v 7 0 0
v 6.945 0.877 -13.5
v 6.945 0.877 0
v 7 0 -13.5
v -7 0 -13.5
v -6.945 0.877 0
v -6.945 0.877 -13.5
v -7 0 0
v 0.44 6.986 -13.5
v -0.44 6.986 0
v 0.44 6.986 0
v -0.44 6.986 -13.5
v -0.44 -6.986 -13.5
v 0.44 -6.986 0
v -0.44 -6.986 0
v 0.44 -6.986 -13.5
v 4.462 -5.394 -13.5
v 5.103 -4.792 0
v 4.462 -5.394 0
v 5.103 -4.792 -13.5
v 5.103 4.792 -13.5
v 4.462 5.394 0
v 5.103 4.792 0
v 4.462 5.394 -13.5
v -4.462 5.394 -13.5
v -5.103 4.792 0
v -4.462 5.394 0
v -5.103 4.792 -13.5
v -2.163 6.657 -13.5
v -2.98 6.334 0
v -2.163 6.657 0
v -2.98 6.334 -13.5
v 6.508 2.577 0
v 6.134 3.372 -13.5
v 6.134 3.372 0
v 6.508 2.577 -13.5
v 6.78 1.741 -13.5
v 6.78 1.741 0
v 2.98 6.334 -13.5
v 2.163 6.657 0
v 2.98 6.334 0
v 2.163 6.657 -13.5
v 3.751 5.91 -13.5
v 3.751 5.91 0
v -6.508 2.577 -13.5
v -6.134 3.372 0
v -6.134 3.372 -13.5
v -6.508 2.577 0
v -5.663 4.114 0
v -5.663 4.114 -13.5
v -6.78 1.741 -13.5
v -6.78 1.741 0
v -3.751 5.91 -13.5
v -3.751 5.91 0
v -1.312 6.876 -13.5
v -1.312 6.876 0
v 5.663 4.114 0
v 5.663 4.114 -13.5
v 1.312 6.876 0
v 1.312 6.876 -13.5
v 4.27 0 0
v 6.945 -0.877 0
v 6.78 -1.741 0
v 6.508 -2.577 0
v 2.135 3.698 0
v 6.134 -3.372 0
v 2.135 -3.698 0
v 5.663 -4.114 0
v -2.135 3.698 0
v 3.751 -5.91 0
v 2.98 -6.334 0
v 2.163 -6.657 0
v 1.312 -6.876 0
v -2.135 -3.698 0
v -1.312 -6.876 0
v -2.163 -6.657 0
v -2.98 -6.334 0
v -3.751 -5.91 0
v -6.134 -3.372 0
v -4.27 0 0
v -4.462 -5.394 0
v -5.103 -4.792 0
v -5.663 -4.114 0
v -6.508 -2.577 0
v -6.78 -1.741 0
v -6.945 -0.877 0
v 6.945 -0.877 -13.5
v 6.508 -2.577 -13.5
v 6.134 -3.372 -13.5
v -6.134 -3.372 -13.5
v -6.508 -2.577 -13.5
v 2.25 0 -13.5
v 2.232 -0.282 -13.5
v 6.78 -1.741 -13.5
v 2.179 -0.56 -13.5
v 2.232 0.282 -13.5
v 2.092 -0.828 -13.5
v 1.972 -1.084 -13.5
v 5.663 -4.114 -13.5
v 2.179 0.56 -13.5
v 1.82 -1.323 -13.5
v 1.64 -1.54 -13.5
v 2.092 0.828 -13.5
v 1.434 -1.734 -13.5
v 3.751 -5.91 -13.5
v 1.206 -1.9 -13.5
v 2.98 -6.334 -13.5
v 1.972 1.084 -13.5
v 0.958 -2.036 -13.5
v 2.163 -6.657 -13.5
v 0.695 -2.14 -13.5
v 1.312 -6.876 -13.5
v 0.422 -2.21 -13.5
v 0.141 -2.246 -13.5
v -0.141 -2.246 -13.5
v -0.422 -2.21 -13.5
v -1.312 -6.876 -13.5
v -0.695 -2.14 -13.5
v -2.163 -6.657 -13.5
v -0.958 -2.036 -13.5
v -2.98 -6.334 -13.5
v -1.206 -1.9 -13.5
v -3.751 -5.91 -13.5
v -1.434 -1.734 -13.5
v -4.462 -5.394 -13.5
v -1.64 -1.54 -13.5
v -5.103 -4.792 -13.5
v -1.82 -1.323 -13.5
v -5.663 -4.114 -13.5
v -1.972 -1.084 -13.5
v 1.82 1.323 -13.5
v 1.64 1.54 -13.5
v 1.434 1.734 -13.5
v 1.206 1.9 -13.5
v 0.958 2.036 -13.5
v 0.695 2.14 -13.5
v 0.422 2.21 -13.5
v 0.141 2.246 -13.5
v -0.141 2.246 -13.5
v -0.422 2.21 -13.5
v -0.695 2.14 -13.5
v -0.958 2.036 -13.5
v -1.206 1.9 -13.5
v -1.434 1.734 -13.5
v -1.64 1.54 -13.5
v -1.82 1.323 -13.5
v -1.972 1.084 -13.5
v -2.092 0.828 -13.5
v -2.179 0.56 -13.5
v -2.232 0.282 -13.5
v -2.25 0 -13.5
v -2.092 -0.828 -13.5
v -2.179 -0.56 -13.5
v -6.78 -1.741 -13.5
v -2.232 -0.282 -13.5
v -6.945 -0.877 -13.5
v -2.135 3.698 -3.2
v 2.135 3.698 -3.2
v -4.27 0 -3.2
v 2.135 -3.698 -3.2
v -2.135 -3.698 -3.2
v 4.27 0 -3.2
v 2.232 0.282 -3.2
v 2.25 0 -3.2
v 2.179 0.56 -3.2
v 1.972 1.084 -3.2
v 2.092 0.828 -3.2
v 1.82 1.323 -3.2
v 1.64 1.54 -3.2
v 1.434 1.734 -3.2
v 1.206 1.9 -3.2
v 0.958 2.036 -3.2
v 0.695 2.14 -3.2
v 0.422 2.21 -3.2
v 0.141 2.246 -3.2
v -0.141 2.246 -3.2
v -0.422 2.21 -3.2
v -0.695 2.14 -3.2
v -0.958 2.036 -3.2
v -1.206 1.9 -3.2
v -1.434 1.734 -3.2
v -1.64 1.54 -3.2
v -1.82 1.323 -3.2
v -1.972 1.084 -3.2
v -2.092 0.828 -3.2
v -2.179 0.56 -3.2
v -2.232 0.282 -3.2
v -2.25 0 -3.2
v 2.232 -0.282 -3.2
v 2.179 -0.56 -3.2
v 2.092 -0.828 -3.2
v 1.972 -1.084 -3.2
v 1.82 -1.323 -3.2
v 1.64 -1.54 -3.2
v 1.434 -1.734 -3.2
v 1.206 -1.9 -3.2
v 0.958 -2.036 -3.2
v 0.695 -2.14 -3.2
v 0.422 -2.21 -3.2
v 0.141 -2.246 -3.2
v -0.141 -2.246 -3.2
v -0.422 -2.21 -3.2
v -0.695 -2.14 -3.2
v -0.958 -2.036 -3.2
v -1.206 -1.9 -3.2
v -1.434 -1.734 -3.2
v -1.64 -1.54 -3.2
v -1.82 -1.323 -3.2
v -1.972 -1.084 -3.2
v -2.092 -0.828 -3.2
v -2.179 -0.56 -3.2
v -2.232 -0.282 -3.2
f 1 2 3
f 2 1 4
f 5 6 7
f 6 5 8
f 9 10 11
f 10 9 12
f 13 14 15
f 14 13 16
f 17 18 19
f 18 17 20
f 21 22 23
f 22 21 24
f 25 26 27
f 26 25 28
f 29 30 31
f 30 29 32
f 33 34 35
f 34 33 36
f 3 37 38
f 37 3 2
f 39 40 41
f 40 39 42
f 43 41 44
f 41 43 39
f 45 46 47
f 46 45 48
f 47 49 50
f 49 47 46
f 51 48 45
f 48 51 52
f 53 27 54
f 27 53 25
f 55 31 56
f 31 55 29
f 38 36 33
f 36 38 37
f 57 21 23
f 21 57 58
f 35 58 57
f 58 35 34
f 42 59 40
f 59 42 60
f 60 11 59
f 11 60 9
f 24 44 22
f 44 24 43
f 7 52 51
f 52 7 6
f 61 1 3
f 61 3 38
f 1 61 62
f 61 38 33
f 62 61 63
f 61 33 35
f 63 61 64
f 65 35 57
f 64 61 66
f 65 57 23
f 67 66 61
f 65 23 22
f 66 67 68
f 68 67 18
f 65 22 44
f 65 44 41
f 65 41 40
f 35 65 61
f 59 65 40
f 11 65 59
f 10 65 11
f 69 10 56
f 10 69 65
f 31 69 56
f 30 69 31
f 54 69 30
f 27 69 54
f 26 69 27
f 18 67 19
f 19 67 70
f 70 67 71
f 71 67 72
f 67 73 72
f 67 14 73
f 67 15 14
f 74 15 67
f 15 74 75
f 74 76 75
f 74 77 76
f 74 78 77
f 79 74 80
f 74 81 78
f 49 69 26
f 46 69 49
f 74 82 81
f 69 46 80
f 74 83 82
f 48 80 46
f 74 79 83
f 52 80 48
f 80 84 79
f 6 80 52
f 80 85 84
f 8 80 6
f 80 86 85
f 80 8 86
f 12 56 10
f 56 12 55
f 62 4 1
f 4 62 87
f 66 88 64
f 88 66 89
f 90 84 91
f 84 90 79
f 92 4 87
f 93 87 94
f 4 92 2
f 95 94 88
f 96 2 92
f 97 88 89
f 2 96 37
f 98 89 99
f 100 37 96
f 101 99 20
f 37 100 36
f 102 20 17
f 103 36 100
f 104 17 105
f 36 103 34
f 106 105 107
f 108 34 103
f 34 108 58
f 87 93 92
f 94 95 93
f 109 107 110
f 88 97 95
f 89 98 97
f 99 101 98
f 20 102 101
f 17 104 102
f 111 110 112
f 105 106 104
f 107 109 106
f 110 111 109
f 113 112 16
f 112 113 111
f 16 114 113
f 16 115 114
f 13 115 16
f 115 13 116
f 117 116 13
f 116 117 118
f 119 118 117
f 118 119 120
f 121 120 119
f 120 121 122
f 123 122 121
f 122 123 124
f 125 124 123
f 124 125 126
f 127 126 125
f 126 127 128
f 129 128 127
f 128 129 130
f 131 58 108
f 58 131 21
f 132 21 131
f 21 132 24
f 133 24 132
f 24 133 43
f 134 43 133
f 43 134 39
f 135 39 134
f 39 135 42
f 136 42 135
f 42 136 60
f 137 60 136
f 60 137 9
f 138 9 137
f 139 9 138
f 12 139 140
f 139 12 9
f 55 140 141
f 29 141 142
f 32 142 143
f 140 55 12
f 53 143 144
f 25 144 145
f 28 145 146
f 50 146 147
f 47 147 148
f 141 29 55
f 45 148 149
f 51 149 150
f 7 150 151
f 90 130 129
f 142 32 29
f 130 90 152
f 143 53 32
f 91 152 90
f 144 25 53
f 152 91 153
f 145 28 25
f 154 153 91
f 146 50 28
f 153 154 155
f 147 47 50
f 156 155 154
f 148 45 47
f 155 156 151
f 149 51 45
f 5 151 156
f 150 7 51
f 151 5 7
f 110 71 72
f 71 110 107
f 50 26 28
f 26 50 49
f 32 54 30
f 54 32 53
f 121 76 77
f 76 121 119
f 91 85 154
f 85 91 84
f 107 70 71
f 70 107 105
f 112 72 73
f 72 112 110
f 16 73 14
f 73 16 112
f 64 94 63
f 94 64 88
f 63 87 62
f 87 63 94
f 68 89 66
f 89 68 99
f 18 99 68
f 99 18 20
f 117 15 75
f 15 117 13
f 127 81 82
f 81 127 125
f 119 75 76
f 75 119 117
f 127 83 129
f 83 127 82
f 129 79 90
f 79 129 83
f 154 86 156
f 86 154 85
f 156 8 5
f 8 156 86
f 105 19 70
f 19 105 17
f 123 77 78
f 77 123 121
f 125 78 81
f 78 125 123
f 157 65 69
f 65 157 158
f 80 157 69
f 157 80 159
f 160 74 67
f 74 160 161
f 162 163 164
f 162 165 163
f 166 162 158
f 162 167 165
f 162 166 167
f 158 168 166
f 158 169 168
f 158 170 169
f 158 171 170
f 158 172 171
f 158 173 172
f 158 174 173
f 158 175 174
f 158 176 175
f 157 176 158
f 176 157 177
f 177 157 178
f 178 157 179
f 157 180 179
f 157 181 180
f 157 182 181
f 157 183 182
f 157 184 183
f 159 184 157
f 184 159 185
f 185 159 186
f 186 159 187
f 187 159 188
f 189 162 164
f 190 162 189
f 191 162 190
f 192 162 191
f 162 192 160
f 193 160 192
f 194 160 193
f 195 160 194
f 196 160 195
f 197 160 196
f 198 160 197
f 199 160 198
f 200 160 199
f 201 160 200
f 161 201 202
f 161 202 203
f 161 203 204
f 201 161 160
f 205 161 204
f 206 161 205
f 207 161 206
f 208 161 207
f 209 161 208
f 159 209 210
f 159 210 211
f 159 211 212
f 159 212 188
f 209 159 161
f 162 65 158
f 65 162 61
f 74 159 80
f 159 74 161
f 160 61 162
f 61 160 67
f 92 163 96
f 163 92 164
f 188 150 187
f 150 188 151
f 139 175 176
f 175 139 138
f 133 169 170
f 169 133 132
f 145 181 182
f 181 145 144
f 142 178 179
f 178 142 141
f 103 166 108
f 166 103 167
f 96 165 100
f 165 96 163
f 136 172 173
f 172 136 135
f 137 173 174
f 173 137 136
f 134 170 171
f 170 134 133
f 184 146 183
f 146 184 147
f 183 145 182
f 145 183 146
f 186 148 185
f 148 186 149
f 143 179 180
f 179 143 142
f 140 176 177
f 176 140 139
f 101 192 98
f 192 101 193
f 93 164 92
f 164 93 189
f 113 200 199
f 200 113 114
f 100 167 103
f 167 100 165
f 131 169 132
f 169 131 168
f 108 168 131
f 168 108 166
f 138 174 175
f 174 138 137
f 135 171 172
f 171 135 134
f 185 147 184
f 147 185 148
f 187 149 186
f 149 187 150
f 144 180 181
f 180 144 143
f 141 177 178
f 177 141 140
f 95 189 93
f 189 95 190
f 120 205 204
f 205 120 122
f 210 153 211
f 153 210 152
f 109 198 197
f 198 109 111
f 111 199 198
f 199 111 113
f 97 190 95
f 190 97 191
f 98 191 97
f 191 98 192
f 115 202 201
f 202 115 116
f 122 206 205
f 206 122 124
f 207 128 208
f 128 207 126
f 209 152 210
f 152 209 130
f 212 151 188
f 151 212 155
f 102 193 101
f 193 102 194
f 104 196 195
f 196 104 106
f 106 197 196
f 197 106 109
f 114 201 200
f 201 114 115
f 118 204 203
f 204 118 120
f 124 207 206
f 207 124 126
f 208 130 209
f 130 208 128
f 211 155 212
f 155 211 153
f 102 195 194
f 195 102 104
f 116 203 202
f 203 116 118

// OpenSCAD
$fn = 50;


difference() {
	union() {
		translate(v = [0, 0, -13.5000000000]) {
			cylinder(h = 13.5000000000, r = 7.0000000000);
		}
		translate(v = [0, 0, -12.0000000000]) {
			cylinder(h = 12, r = 2.8750000000);
		}
	}
	union() {
		translate(v = [0, 0, 0]) {
			rotate(a = [0, 0, 0]) {
				difference() {
					union() {
						translate(v = [0, 0, -3.2000000000]) {
							linear_extrude(height = 3.2000000000) {
								polygon(points = [[4.2698000000, 0.0000000000], [2.1349000000, 3.6977552691], [-2.1349000000, 3.6977552691], [-4.2698000000, 0.0000000000], [-2.1349000000, -3.6977552691], [2.1349000000, -3.6977552691]]);
							}
						}
					}
					union();
				}
			}
		}
		#translate(v = [0, 0, -100.0000000000]) {
			cylinder(h = 200, r = 2.2500000000);
		}
	}
}
